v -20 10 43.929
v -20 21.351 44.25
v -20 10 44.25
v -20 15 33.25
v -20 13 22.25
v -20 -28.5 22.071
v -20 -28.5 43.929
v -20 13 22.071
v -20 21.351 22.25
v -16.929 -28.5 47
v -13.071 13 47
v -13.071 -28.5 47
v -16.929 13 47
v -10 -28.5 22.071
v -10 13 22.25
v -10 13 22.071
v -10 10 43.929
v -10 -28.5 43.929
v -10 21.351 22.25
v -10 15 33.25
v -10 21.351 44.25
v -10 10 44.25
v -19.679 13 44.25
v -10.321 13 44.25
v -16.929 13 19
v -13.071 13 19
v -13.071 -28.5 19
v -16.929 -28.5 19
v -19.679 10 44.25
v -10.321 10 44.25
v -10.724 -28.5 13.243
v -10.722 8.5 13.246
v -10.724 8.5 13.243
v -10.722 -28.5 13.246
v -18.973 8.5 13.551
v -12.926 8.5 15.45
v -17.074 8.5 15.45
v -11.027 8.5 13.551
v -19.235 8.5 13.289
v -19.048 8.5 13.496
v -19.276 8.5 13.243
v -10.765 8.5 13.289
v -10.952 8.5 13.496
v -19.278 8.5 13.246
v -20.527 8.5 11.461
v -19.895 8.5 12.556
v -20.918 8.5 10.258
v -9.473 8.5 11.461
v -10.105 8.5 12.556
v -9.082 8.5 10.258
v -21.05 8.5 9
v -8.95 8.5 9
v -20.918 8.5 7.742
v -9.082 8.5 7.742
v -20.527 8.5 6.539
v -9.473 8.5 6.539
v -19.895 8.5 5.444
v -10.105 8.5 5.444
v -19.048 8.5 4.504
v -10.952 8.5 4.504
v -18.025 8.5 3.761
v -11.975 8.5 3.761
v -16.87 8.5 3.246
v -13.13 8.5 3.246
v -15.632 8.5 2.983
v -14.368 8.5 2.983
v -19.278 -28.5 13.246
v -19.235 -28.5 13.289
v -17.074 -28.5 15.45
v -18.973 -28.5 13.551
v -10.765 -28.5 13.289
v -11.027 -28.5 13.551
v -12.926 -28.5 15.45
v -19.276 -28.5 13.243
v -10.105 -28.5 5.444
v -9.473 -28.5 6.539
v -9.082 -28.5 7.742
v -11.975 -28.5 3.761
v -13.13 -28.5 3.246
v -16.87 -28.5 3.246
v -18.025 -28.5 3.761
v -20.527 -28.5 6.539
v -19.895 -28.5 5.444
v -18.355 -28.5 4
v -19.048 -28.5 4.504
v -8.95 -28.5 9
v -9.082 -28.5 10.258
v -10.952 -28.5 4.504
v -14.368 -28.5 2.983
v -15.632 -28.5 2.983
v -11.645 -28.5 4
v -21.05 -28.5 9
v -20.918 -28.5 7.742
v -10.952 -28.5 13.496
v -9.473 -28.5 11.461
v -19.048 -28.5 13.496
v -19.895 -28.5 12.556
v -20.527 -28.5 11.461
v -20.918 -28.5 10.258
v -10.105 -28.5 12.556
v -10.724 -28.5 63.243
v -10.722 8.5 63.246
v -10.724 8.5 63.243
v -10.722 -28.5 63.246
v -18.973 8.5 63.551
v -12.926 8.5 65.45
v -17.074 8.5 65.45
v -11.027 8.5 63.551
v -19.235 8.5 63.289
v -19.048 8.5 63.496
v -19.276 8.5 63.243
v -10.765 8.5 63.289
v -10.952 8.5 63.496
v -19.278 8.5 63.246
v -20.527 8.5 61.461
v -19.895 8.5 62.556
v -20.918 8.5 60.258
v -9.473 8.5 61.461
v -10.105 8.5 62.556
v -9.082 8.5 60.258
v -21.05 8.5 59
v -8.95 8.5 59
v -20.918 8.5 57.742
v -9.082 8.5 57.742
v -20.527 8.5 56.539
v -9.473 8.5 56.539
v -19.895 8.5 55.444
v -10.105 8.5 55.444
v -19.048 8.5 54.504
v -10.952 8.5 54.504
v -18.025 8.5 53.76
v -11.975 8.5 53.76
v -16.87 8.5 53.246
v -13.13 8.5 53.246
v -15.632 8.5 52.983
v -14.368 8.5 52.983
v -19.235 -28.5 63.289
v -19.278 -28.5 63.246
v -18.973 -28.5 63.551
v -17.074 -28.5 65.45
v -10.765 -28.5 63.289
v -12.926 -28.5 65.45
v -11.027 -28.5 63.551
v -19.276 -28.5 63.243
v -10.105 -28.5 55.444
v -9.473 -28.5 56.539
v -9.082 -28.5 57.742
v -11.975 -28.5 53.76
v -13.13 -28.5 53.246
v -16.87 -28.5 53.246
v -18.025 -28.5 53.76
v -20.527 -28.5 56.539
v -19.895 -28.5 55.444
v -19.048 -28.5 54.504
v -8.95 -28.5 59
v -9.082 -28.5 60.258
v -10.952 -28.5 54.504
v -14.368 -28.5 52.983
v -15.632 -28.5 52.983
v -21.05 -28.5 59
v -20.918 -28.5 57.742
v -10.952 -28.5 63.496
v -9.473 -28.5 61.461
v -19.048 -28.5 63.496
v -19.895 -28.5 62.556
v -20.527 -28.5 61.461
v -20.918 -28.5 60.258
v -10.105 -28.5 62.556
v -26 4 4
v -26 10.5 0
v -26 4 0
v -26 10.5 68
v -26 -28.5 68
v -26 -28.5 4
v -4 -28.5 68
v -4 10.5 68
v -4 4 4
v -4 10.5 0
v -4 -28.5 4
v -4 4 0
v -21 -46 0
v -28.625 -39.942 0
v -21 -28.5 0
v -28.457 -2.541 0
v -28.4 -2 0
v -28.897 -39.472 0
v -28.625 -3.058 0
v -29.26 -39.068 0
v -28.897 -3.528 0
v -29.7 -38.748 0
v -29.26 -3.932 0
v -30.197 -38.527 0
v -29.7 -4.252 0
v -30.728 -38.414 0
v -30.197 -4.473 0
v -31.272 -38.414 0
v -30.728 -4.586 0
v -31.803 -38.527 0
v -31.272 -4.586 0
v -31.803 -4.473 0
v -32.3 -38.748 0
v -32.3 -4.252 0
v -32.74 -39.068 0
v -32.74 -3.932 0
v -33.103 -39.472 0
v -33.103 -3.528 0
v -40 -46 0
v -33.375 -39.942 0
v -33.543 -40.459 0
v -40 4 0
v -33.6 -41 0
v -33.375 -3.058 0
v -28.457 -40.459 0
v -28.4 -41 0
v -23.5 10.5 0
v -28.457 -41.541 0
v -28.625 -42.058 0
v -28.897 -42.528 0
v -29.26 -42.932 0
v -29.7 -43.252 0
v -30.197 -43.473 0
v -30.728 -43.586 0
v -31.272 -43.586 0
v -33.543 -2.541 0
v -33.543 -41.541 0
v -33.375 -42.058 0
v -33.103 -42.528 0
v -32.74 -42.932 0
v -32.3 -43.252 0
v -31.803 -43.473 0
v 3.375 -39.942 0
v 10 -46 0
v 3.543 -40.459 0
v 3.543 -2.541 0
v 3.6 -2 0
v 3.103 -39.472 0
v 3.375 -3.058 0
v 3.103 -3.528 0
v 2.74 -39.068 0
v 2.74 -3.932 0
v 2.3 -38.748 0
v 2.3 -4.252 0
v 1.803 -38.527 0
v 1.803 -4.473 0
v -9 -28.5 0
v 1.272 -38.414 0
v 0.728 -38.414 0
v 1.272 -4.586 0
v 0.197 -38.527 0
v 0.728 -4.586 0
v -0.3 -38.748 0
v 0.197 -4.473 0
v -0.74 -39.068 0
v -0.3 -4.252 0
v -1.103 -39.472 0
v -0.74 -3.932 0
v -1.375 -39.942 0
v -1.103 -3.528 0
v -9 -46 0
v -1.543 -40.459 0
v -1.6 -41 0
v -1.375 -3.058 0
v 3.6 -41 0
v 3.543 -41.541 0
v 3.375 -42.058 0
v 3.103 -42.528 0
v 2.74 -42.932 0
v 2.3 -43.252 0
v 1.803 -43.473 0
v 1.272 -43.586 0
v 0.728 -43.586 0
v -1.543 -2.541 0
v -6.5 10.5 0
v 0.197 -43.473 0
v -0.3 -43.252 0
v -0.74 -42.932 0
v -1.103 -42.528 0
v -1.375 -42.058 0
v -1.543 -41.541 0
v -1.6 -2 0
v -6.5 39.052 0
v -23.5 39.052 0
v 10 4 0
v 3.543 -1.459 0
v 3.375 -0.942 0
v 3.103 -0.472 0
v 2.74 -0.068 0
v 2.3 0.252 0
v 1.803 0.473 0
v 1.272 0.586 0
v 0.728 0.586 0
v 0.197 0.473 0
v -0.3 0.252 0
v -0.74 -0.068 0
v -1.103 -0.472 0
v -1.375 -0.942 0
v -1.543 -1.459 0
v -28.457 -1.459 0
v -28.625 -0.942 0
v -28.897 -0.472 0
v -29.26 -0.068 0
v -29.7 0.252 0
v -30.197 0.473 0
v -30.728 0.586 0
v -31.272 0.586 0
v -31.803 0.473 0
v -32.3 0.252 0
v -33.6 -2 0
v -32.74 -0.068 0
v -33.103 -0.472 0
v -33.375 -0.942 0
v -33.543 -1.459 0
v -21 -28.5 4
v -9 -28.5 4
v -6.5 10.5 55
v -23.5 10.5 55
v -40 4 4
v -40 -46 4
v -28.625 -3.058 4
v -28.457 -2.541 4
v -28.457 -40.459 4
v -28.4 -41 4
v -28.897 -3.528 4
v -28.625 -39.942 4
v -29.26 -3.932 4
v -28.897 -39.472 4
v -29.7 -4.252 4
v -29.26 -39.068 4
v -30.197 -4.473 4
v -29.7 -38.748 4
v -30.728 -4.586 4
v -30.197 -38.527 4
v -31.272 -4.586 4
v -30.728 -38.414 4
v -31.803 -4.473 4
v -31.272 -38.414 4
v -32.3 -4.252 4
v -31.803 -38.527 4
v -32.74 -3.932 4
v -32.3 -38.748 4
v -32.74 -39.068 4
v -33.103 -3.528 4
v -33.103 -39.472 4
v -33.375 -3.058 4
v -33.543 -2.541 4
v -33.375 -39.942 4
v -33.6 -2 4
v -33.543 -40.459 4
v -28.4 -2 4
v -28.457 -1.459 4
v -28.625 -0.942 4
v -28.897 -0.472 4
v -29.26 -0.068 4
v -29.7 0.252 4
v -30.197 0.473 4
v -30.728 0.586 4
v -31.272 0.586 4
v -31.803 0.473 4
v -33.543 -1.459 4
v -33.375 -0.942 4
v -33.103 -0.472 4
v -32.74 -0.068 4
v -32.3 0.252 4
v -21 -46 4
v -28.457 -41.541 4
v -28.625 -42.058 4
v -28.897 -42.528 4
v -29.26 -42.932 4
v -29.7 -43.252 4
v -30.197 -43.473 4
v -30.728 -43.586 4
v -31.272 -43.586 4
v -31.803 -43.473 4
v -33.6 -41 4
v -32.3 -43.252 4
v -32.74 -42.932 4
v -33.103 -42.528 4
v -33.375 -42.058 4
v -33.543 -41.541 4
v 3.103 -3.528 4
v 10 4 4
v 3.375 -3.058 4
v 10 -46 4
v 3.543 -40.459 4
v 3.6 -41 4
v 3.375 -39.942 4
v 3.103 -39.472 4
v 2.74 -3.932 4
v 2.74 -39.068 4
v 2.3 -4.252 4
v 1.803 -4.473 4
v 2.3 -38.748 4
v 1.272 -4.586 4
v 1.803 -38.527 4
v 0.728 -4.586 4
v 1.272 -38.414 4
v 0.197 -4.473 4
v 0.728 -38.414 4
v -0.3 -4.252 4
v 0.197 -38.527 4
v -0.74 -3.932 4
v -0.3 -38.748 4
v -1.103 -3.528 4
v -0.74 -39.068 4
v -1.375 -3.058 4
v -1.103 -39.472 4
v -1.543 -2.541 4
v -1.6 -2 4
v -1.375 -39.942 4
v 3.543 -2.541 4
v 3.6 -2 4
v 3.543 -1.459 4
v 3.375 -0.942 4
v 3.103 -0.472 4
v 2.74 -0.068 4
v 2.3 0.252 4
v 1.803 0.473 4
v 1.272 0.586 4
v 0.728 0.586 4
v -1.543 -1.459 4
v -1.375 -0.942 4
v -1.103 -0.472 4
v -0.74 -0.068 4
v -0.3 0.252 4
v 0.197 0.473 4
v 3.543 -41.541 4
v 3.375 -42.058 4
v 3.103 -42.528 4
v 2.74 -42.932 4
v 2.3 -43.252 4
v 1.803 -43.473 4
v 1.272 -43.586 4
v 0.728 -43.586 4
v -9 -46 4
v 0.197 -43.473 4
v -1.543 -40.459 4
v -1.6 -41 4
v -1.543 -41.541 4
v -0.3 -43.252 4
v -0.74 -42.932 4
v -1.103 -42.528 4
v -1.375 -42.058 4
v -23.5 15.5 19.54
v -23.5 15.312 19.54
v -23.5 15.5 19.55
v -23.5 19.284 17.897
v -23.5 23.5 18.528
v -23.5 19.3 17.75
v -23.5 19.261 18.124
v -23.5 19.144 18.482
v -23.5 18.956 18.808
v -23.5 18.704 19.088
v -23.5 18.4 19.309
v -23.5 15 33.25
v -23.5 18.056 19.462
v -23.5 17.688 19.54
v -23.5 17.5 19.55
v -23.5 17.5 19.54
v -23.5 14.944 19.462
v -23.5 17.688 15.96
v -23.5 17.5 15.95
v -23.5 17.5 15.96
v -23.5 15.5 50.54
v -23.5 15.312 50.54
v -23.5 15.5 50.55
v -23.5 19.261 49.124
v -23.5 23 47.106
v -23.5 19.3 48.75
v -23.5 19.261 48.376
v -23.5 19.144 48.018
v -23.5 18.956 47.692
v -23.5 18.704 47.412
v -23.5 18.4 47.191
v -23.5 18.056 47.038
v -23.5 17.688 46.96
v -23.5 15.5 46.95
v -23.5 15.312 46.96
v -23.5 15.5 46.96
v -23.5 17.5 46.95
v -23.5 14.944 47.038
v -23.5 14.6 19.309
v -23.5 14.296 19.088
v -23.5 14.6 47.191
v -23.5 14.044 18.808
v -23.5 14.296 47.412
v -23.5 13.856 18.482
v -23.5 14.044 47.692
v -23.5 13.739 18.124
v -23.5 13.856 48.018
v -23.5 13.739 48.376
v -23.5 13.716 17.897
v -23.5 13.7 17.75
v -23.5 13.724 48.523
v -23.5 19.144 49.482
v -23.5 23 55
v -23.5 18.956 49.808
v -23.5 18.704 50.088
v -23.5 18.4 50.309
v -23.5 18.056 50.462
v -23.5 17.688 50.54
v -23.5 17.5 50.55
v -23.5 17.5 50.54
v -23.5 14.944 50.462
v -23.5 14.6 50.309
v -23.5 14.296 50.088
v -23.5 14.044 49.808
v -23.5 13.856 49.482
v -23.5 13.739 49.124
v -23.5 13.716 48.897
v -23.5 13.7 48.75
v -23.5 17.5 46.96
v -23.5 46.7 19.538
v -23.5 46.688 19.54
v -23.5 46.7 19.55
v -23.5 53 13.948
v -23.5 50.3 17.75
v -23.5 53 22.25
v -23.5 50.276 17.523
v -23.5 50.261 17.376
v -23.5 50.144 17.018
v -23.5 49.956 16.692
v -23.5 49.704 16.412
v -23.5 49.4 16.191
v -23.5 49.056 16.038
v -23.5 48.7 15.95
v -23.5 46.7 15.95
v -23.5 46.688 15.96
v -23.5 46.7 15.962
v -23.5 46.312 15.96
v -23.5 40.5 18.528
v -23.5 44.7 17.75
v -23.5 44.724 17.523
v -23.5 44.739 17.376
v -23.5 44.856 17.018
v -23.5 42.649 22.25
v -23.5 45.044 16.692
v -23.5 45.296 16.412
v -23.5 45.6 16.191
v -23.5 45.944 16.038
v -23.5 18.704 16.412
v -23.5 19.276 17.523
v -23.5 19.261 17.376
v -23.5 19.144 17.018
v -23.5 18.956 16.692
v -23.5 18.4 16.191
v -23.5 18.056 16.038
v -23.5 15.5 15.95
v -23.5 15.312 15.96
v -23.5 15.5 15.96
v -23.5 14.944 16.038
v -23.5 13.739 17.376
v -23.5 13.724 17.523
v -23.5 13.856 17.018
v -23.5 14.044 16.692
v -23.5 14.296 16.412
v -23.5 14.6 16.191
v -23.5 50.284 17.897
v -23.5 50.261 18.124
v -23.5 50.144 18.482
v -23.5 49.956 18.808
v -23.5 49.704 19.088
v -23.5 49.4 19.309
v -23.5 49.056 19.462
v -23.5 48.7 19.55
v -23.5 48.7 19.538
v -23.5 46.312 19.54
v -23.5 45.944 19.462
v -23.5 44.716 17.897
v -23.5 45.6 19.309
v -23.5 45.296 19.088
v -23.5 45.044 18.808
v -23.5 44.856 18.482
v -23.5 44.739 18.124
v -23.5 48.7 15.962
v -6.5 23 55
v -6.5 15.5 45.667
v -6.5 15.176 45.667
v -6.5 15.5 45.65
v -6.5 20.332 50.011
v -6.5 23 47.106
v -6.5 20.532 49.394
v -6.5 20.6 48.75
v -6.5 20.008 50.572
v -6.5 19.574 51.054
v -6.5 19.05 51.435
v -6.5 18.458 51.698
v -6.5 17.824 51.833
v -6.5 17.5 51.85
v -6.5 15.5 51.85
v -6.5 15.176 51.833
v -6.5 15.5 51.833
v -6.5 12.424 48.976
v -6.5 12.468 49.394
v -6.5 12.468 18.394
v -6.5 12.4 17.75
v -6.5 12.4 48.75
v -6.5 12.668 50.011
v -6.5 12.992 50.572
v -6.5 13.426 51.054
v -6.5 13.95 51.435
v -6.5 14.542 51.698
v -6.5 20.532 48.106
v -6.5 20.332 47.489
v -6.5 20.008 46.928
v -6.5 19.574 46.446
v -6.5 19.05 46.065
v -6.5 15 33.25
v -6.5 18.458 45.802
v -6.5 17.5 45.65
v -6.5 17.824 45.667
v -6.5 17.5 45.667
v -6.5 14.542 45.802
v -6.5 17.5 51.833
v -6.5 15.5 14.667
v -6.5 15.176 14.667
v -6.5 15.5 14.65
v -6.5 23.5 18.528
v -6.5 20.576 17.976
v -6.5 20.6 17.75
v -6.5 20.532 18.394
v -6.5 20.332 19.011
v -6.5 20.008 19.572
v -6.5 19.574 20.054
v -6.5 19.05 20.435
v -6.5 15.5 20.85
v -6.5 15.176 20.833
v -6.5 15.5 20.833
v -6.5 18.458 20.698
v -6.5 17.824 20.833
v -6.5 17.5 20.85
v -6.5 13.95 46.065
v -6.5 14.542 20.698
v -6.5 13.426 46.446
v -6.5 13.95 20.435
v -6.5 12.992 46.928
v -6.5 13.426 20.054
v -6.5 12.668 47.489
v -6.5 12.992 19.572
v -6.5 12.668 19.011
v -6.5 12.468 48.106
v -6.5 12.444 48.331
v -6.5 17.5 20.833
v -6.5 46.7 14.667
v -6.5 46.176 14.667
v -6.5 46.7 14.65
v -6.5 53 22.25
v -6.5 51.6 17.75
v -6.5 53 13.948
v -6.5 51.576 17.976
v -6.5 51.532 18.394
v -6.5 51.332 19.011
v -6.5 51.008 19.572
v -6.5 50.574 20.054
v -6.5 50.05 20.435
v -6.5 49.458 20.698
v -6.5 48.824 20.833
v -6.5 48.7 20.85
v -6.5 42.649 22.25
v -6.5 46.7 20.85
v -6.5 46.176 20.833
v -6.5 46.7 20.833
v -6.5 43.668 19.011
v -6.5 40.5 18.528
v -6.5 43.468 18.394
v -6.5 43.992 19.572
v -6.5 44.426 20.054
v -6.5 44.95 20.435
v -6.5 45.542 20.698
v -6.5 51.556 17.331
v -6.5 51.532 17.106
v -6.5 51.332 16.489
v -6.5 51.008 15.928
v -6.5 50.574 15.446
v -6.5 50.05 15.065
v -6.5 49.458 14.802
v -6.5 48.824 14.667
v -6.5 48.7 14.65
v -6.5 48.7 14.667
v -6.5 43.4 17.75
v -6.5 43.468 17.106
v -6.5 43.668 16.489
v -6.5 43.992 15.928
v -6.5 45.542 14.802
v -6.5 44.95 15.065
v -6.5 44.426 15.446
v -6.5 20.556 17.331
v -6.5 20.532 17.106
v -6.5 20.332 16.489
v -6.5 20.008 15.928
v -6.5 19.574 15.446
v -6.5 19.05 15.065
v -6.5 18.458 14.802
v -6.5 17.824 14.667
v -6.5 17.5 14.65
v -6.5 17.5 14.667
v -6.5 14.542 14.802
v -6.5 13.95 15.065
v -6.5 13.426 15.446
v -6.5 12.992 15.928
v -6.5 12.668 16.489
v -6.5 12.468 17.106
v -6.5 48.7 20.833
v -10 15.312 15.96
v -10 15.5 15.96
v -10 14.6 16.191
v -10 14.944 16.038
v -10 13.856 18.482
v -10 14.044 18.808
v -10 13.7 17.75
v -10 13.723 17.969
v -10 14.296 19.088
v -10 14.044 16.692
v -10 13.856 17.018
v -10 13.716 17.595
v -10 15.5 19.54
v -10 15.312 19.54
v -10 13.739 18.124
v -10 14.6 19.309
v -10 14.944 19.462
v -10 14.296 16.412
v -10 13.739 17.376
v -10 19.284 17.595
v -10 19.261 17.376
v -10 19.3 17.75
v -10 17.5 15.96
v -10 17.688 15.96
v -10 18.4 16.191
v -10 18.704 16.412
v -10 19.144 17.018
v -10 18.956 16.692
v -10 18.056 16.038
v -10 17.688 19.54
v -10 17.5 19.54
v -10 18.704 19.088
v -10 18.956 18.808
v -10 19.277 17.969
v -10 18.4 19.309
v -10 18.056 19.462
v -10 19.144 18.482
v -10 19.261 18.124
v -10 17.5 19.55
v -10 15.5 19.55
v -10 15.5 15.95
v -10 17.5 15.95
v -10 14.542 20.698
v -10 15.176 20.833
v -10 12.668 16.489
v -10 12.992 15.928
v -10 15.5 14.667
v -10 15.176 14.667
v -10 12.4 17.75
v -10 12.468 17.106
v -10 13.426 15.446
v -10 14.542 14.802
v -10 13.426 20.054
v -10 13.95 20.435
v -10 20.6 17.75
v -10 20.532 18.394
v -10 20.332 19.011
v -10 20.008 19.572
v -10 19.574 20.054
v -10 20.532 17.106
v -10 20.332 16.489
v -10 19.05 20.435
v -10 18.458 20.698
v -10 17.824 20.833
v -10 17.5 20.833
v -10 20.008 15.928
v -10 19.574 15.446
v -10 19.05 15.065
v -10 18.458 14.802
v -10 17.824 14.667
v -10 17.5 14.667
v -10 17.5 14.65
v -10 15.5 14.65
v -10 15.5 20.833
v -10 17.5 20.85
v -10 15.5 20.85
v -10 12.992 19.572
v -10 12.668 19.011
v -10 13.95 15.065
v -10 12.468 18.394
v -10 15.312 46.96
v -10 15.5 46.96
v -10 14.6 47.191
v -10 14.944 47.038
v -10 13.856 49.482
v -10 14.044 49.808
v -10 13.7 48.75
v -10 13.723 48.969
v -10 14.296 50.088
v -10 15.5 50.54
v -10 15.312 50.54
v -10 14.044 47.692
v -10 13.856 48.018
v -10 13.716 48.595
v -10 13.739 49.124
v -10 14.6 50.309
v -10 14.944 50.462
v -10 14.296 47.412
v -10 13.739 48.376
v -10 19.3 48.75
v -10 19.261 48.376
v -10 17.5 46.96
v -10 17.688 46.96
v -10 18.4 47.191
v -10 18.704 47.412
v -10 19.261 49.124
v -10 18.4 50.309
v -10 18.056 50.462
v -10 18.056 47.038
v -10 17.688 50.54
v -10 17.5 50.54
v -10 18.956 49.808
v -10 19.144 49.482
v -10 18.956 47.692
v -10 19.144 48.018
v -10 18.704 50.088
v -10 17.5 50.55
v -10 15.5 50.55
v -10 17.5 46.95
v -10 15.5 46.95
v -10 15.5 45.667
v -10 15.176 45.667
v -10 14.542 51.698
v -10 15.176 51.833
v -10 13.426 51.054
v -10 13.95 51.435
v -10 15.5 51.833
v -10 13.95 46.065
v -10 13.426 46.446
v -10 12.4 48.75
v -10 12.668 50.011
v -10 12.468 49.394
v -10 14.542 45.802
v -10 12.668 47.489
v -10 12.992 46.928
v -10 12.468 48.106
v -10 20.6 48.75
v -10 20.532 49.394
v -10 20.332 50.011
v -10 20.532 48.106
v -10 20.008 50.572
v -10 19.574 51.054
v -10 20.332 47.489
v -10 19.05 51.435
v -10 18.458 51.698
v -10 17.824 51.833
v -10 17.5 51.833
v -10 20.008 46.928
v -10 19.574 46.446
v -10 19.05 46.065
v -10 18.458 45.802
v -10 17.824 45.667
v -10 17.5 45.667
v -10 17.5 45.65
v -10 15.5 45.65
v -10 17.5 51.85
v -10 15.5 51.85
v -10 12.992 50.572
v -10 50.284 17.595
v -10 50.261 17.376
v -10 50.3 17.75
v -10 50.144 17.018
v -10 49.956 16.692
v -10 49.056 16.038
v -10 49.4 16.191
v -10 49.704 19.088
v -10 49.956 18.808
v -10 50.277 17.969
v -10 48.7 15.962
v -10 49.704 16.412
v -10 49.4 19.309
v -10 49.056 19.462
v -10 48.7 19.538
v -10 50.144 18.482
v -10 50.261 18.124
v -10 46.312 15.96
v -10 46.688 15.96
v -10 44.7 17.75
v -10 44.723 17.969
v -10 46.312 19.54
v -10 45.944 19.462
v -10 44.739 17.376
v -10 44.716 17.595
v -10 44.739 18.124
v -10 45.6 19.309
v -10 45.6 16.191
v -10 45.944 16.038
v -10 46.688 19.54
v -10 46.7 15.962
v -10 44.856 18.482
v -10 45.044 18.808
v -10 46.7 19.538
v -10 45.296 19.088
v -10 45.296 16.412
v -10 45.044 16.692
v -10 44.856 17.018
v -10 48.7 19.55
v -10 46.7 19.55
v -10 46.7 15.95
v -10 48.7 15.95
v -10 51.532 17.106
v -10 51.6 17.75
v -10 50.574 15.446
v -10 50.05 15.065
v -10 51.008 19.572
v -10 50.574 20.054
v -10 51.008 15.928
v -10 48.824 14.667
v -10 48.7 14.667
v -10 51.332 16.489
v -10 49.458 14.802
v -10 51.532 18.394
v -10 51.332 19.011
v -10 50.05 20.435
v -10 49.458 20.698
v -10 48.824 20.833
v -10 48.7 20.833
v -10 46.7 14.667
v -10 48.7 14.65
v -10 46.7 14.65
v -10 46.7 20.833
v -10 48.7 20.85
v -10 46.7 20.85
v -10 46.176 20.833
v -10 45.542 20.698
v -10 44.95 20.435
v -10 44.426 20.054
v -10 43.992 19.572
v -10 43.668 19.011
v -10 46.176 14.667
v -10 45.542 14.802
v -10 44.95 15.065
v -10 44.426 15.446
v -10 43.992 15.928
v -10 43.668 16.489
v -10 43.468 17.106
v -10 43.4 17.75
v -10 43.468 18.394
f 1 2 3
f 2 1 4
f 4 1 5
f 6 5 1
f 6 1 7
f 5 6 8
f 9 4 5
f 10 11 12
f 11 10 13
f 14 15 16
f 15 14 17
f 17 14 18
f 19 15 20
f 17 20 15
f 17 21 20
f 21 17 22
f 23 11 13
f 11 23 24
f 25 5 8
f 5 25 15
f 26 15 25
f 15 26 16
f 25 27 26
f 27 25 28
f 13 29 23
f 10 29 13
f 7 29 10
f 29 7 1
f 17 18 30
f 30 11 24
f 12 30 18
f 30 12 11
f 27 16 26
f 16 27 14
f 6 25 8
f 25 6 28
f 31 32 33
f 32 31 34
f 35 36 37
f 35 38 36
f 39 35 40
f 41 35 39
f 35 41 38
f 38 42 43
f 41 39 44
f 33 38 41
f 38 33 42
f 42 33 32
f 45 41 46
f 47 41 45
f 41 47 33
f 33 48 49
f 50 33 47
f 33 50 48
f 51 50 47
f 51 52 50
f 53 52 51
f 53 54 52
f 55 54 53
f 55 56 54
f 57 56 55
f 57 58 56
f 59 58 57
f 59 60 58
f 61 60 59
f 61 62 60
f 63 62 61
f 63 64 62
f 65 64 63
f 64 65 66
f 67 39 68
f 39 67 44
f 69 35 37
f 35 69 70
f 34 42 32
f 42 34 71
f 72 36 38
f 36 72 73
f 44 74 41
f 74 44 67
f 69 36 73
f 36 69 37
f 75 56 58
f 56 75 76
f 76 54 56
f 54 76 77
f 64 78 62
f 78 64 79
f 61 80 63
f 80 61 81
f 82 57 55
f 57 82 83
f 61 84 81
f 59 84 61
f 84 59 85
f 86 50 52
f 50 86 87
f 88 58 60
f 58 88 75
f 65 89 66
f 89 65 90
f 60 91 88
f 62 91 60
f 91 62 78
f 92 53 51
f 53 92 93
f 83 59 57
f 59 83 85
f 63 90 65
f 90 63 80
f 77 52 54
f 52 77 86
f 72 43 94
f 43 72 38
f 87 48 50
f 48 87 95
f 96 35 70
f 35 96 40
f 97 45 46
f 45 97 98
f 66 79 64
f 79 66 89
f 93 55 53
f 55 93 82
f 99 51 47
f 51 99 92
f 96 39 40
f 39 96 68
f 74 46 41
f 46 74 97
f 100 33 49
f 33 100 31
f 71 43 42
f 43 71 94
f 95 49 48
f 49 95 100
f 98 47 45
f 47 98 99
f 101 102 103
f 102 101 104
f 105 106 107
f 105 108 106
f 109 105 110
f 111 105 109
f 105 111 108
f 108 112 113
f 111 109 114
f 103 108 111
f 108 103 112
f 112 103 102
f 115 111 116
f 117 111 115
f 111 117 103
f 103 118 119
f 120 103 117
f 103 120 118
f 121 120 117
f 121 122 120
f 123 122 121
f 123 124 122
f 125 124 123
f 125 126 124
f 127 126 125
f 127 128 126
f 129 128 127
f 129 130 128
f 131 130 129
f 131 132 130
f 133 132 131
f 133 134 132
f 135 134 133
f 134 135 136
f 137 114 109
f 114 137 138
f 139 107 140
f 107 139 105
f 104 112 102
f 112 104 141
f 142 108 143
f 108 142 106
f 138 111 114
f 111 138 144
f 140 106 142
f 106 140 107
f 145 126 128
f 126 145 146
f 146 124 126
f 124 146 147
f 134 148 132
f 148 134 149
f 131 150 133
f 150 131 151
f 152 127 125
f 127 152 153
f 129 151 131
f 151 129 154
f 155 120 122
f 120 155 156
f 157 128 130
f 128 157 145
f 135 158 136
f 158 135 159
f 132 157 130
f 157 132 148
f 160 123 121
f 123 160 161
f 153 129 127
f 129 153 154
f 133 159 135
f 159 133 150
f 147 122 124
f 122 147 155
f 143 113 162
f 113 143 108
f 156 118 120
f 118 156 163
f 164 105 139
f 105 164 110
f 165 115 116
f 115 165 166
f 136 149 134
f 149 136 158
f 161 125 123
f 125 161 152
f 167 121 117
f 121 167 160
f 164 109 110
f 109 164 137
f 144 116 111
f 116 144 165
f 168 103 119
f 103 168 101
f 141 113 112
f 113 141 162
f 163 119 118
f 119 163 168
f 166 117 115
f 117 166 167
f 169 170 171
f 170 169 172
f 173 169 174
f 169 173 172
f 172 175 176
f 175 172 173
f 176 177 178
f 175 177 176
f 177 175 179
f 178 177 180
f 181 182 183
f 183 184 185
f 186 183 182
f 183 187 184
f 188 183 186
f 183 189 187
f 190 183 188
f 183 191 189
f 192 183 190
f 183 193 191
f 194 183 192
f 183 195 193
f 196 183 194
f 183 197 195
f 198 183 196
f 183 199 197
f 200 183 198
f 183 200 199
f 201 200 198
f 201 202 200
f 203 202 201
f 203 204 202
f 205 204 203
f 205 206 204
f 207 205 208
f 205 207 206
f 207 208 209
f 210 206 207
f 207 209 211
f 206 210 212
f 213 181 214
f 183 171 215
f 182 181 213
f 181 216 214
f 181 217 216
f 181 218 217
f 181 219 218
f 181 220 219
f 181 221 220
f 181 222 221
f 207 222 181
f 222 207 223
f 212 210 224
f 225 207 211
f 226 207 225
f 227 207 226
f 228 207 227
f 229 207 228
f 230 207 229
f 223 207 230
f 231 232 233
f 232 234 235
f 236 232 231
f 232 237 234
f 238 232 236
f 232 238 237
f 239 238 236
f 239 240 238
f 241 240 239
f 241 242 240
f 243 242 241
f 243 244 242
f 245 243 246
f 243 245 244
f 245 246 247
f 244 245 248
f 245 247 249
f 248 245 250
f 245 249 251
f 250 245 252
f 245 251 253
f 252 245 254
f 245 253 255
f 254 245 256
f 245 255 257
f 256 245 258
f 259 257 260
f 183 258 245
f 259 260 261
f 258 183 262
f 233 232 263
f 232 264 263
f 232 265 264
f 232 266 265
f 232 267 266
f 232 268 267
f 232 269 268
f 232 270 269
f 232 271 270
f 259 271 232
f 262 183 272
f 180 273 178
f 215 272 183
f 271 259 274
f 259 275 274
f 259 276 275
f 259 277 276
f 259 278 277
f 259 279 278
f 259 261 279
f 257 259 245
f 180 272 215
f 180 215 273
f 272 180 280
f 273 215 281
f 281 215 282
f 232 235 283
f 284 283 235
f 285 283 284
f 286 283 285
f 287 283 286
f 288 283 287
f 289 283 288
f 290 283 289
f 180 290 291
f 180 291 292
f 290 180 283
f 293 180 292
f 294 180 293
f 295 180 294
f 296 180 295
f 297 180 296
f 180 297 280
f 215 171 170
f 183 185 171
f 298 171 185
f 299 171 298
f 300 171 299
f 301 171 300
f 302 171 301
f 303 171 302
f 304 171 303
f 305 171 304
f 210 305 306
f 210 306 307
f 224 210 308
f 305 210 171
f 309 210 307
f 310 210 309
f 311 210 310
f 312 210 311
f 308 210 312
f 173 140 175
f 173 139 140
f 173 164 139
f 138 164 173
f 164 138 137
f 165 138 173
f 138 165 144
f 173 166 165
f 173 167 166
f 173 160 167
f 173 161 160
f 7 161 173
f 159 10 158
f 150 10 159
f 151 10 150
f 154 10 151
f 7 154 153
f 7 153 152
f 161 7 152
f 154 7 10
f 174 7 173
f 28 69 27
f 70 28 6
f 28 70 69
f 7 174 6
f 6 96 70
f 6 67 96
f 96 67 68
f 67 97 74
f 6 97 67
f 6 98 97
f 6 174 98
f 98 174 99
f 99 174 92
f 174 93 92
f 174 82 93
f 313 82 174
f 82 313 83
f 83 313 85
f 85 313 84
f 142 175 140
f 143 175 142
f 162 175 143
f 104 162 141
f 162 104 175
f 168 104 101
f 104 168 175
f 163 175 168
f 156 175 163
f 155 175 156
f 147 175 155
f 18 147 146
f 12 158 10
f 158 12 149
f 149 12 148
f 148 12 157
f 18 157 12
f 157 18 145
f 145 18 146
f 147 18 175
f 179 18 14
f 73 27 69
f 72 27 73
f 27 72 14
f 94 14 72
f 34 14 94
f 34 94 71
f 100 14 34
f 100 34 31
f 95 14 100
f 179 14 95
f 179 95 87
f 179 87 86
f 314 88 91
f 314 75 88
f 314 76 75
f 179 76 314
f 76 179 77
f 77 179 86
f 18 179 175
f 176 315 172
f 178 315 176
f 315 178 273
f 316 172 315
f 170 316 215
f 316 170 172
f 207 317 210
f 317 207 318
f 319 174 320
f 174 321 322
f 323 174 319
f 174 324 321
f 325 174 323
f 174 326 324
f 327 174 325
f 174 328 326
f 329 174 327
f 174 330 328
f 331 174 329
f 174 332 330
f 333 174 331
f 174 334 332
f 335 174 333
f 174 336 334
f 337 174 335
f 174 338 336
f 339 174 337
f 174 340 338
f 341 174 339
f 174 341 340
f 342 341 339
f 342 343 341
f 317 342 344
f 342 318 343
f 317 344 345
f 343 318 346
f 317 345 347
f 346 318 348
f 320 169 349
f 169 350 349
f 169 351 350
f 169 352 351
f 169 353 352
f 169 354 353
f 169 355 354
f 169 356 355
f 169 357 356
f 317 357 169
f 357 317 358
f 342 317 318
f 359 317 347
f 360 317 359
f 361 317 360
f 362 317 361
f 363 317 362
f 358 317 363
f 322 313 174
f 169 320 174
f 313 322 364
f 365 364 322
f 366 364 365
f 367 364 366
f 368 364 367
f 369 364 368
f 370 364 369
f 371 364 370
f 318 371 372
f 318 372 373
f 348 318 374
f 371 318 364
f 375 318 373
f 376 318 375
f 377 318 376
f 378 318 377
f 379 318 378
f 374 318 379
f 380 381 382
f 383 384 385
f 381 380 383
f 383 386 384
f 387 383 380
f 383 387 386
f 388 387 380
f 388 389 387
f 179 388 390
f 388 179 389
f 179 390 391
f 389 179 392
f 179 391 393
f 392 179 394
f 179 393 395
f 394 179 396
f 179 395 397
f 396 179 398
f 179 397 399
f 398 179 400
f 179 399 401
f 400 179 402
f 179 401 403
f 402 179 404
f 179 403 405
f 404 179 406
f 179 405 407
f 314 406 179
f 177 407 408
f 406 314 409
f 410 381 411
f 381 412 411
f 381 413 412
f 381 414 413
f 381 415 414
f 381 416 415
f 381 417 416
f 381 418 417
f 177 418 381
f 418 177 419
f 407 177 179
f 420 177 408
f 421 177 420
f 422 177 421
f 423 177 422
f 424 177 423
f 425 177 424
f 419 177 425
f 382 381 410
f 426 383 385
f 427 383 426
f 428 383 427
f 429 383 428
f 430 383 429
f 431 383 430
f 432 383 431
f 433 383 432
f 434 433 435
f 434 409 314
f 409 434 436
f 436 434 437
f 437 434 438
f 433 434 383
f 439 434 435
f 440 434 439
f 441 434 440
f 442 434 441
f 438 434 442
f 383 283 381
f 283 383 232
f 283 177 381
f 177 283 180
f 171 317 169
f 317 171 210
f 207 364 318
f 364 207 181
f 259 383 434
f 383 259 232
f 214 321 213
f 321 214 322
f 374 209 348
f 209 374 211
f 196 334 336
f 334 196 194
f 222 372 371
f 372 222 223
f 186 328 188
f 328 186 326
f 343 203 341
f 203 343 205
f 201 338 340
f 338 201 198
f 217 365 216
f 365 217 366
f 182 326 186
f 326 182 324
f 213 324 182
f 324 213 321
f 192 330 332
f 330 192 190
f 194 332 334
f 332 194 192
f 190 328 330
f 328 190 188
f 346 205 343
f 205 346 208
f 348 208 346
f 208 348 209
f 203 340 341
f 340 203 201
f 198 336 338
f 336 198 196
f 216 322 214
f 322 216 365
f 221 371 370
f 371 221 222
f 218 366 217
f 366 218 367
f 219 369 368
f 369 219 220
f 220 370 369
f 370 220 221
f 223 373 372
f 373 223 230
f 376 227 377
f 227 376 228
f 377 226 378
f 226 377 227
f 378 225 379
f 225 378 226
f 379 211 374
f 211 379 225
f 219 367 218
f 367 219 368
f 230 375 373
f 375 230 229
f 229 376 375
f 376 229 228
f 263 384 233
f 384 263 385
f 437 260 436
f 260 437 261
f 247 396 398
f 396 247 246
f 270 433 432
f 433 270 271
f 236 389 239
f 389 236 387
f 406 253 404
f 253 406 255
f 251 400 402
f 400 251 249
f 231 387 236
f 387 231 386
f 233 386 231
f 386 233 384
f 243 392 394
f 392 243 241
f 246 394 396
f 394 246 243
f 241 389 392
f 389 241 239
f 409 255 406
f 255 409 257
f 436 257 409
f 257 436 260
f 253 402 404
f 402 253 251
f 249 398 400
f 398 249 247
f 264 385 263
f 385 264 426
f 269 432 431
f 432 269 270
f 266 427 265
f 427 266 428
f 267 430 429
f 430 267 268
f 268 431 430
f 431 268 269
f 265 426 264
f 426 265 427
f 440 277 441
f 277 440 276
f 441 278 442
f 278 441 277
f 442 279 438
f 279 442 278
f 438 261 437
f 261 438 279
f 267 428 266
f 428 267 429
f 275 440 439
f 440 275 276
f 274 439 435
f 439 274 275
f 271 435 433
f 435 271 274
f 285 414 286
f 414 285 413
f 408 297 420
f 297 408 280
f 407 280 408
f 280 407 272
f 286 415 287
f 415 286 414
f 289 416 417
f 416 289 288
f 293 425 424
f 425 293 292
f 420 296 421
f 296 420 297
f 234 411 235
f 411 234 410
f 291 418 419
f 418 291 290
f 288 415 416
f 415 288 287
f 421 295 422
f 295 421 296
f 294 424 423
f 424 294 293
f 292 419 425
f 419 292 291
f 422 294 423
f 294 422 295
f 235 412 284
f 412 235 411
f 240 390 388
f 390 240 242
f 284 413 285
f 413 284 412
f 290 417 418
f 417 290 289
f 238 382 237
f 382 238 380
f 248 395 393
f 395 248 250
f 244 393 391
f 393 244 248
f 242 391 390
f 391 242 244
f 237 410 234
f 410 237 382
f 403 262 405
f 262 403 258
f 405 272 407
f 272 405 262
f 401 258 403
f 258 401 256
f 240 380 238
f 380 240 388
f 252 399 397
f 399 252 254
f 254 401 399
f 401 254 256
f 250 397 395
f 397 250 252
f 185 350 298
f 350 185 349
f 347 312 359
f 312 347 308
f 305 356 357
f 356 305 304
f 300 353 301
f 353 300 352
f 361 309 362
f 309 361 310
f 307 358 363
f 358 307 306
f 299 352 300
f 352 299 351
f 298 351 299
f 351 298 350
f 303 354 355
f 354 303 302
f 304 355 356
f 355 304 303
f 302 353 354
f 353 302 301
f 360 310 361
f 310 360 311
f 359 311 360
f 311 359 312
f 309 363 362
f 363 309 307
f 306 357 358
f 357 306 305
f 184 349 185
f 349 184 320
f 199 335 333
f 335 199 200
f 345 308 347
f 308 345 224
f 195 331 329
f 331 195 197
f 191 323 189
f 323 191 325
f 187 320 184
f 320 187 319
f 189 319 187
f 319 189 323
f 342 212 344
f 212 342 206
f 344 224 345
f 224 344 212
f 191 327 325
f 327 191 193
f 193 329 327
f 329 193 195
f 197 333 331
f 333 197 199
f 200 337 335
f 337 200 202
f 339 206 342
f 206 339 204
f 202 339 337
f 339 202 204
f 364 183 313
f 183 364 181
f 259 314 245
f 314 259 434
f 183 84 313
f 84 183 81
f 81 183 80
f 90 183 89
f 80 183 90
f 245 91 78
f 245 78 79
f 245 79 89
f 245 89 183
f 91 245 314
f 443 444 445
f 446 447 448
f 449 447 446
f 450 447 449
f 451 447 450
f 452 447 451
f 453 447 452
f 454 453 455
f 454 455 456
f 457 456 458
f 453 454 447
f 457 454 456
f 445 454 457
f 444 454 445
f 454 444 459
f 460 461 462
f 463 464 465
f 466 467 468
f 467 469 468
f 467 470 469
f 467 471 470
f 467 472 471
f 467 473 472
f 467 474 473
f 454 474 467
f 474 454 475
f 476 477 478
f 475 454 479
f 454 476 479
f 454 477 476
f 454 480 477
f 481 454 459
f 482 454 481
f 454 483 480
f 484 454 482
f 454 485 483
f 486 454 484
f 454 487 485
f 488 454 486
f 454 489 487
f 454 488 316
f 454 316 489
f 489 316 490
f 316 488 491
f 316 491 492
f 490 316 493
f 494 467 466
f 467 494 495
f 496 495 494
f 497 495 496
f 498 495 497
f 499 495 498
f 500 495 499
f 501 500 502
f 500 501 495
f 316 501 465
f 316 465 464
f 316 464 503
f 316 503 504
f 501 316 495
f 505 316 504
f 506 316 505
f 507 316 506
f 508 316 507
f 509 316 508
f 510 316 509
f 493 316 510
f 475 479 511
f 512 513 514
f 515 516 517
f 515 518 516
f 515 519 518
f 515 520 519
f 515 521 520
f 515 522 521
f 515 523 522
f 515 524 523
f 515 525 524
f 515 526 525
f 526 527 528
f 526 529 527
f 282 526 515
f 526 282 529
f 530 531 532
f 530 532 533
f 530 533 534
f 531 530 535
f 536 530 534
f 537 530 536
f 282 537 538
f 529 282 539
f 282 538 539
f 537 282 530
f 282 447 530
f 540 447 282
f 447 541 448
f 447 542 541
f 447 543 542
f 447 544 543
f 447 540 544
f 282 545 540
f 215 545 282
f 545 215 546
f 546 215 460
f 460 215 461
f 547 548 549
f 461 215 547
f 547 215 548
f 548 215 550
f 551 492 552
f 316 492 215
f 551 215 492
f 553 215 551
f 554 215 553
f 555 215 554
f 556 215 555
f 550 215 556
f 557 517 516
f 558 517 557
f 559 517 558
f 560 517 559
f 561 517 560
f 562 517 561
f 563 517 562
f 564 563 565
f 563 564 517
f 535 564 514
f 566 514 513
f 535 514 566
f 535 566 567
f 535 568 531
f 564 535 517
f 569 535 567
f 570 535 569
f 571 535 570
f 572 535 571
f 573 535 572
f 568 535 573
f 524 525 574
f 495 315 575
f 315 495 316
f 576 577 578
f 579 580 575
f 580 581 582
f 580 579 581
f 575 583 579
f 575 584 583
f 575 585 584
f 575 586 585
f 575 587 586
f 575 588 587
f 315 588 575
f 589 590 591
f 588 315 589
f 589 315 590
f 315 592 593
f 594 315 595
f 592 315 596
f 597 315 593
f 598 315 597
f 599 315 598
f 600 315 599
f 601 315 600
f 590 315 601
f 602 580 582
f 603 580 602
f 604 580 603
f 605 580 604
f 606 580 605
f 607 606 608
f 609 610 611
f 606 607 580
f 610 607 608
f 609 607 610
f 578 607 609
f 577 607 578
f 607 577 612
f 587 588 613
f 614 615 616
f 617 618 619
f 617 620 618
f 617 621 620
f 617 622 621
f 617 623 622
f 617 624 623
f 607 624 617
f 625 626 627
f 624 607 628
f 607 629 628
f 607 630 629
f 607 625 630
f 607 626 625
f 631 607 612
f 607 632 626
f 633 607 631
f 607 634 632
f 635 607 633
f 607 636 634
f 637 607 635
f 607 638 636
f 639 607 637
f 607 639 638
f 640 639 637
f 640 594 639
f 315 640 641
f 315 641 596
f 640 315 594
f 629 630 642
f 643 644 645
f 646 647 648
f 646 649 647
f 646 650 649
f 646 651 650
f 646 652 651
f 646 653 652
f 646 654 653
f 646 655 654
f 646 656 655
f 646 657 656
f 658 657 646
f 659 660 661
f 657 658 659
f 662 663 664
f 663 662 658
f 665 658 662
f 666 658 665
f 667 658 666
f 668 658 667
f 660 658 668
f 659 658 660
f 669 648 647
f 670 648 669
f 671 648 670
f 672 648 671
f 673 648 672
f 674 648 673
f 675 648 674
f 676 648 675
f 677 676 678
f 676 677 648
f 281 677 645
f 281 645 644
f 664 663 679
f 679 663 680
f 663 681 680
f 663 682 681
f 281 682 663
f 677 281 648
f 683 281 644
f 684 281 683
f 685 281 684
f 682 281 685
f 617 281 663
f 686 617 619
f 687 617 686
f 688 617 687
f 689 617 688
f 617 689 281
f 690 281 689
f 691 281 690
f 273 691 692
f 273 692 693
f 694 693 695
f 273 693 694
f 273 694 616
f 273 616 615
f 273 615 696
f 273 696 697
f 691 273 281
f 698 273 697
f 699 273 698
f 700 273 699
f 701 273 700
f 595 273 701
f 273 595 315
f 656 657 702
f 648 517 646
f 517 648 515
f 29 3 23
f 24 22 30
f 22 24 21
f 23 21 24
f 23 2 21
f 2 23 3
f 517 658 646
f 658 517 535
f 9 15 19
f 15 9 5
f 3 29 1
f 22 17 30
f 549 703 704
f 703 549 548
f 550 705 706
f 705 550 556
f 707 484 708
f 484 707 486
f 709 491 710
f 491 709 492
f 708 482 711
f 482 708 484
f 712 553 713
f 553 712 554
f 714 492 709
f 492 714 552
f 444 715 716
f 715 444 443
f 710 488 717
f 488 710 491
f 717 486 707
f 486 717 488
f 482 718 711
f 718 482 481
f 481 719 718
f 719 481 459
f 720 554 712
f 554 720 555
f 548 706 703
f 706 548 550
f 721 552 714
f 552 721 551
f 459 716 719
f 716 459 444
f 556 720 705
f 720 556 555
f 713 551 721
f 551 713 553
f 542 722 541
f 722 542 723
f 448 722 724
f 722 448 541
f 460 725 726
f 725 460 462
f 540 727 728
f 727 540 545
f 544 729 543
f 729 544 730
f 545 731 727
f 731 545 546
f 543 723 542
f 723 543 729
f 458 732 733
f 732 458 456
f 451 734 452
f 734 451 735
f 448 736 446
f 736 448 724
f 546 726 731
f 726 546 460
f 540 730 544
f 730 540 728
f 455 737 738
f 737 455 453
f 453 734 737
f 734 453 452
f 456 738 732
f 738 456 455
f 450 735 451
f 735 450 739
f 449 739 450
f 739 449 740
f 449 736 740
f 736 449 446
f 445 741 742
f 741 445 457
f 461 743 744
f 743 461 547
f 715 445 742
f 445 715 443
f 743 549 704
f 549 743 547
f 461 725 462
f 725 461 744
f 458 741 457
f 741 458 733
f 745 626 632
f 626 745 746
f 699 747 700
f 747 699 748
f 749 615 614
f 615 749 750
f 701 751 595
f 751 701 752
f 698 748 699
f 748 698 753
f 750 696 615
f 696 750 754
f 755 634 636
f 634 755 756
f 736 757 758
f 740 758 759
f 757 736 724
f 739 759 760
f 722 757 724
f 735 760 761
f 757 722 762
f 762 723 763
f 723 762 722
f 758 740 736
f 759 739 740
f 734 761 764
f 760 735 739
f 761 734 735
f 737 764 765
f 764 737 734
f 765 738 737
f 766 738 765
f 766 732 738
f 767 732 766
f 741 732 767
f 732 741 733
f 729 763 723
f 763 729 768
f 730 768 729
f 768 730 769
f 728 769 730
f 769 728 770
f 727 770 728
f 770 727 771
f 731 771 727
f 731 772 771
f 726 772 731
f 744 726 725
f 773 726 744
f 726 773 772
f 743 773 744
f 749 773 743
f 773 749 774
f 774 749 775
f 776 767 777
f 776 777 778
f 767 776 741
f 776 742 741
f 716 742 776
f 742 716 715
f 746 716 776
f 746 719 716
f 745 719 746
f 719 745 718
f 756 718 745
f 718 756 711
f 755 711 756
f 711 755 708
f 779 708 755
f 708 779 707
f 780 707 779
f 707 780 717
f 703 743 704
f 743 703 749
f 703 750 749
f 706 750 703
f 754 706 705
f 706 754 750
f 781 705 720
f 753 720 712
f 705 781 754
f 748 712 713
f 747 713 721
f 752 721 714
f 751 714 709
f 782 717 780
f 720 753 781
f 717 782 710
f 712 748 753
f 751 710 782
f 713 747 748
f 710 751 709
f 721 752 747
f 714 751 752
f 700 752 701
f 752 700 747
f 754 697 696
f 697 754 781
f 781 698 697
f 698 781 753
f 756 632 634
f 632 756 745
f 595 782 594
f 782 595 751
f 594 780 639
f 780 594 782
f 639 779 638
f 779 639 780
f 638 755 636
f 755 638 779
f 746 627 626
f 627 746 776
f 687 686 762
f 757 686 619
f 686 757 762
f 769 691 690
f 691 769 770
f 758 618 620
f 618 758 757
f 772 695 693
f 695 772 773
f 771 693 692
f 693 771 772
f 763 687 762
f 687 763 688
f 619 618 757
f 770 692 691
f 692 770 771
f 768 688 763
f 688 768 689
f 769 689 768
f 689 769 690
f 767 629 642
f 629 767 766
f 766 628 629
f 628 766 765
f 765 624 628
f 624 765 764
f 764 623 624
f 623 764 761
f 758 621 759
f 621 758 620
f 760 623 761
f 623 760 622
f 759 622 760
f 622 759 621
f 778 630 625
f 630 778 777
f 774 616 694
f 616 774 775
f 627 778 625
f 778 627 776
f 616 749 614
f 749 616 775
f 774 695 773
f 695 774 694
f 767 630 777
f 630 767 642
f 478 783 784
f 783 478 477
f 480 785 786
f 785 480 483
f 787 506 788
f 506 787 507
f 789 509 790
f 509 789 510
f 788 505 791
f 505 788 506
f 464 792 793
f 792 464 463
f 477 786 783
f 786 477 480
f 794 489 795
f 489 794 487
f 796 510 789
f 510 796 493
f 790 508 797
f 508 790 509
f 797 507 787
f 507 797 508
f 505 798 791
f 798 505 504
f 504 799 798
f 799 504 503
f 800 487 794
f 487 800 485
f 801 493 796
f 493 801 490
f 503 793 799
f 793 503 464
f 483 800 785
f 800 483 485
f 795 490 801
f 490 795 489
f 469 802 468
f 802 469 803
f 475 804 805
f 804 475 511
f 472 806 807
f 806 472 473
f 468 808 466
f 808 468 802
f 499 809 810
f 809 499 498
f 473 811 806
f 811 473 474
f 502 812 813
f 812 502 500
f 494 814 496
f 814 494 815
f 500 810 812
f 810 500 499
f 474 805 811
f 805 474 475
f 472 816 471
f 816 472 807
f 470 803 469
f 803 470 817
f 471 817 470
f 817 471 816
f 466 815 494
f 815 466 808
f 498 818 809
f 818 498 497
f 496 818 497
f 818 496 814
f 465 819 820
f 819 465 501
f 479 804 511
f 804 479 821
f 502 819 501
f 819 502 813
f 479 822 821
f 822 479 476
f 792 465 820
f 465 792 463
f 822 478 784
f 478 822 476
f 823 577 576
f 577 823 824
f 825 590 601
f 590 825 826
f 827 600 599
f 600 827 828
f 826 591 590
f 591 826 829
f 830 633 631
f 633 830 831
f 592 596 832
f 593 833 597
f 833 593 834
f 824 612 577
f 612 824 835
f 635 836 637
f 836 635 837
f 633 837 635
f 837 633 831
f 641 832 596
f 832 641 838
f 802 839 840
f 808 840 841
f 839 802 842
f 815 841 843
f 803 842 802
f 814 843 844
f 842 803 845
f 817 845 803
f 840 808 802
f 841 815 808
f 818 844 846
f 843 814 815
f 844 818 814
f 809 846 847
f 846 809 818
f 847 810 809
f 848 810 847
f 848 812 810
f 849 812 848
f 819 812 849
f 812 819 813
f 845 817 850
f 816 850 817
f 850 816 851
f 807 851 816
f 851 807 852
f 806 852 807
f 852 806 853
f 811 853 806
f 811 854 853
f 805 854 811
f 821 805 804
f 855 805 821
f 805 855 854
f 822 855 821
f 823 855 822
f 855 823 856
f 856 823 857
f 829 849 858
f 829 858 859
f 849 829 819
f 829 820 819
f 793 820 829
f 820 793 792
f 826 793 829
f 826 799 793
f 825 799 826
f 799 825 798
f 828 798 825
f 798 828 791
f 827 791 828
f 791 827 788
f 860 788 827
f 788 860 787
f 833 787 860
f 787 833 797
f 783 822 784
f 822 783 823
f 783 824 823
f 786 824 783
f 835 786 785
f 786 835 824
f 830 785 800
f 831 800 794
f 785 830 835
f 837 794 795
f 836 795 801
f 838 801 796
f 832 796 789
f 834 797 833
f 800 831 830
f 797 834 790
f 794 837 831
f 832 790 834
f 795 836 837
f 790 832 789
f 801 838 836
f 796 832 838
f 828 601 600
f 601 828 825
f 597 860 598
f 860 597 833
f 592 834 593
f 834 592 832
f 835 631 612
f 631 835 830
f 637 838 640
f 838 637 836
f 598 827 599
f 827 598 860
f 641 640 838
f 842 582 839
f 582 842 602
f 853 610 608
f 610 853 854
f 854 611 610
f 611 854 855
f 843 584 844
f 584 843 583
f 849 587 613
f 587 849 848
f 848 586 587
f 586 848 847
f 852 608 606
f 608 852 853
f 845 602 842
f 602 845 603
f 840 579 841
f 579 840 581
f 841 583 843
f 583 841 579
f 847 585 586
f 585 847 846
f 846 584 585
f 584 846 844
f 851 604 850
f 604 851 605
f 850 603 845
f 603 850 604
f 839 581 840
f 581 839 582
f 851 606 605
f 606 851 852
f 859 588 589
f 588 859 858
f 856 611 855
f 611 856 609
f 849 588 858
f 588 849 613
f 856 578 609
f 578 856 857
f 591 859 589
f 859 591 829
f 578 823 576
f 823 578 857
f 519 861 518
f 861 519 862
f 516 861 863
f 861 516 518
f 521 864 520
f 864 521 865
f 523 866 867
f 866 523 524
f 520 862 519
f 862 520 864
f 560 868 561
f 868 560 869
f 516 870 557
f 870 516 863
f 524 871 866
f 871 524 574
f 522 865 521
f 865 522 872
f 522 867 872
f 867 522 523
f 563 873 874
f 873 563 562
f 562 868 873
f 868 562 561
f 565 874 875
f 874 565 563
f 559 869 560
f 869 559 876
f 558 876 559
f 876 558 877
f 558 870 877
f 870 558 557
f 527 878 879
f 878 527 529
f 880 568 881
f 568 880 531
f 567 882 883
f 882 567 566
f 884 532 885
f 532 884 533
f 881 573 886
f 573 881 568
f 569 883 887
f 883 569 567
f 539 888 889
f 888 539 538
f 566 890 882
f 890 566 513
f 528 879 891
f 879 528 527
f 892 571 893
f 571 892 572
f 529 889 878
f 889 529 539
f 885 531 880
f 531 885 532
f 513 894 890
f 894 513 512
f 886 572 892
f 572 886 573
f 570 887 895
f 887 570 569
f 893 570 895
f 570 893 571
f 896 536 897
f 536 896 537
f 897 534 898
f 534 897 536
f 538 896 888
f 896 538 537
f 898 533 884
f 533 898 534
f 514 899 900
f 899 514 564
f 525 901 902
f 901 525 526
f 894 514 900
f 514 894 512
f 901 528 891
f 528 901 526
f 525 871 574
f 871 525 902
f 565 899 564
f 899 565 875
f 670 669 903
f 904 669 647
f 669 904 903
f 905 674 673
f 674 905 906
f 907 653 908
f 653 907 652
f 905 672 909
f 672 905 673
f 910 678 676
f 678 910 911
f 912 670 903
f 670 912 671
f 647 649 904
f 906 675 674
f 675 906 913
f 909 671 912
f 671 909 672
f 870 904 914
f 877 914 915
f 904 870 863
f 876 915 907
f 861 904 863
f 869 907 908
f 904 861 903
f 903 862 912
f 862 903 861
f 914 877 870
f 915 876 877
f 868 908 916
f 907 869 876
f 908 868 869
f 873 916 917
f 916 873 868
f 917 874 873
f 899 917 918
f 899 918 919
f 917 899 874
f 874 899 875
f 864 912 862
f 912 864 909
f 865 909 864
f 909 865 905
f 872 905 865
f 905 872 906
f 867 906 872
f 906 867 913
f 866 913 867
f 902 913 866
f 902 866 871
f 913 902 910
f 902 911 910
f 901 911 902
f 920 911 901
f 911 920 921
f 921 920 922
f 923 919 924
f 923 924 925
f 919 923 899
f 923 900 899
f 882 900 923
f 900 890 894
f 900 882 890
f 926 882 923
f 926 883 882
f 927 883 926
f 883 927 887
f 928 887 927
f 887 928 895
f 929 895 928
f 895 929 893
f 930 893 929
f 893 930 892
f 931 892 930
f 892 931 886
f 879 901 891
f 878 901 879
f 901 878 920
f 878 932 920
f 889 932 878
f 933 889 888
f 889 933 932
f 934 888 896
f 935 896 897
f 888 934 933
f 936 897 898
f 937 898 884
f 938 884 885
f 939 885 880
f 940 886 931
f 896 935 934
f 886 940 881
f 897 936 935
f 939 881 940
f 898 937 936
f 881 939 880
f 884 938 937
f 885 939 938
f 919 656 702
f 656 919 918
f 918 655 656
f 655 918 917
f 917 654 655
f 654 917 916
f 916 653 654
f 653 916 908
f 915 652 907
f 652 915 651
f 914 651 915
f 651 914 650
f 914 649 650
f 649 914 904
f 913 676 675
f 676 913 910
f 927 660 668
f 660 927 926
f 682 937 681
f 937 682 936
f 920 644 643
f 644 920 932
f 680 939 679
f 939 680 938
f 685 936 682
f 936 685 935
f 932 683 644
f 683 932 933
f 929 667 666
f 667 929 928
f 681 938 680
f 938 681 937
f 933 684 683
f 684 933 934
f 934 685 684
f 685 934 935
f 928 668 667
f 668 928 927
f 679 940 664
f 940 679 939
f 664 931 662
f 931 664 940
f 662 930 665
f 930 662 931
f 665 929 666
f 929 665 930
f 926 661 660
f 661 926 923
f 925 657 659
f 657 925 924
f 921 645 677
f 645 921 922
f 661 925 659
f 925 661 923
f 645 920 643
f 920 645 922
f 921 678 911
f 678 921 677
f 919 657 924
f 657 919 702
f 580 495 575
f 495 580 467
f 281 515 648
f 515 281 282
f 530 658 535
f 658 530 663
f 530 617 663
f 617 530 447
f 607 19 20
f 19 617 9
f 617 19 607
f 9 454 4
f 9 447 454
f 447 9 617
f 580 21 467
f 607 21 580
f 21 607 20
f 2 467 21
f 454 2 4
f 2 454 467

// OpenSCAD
// file: inc/bearing.scad
// PRUSA iteration3
// Bearing holders
// GNU GPL v3
// Josef Průša <iam@josefprusa.cz> and contributors
// http://www.reprap.org/wiki/Prusa_Mendel
// http://prusamendel.org

bearing_diameter = 15;

module horizontal_bearing_base(bearings=1){
 translate(v=[0,0,6]) cube(size = [24,8+bearings*25,12], center = true);	
}
module horizontal_bearing_holes(bearings=1){
 cutter_lenght = 10+bearings*25;
 one_holder_lenght = 8+25;
 holder_lenght = 8+bearings*25;
 
 // Main bearing cut
 difference(){
  translate(v=[0,0,12+1.5]) rotate(a=[90,0,0]) translate(v=[0,0,-cutter_lenght/2]) cylinder(h = cutter_lenght, r=bearing_diameter/2, $fn=50);
  // Bearing retainers
  translate(v=[0,1-holder_lenght/2,3+1.5]) cube(size = [24,6,8], center = true);
  translate(v=[0,-1+holder_lenght/2,3+1.5]) cube(size = [24,6,8], center = true);
 }
 
 // Ziptie cutouts
 ziptie_cut_ofset = 0;
 for ( i = [0 : bearings-1] ){
  // For easier positioning I move them by half of one 
  // bearing holder then add each bearign lenght and then center again
  translate(v=[0,-holder_lenght/2,0]) translate(v=[0,one_holder_lenght/2+i*25,0]) difference(){
   union(){
    translate(v=[0,2-6,12]) rotate(a=[90,0,0]) translate(v=[0,0,0]) cylinder(h = 4, r=12.5, $fn=50);
    translate(v=[0,2+6,12]) rotate(a=[90,0,0]) translate(v=[0,0,0]) cylinder(h = 4, r=12.5, $fn=50);
   }
   translate(v=[0,10,12]) rotate(a=[90,0,0]) translate(v=[0,0,0]) cylinder(h = 24, r=10, $fn=50);
  }
 }
 
}

module horizontal_bearing_test(){
 difference(){
  horizontal_bearing_base(1);
  horizontal_bearing_holes(1);
 }
 translate(v=[30,0,0]) difference(){
  horizontal_bearing_base(2);
  horizontal_bearing_holes(2);
 }
 translate(v=[60,0,0]) difference(){
  horizontal_bearing_base(3);
  horizontal_bearing_holes(3);
 }
}



thinwall = 3;
bearing_size = bearing_diameter + 2 * thinwall;

module vertical_bearing_base(){
 translate(v=[-bearing_size/2,0,30]) cube(size = [bearing_size,bearing_size,60], center = true);
 cylinder(h = 60, r=bearing_size/2, $fn = 60);
}

module vertical_bearing_holes(){
  translate(v=[0,0,-1]) cylinder(h = 62, r=bearing_diameter/2, $fn = 60);
  rotate(a=[0,0,-60]) translate(v=[10,0,31.5]) cube(size = [10,1,62], center = true);
}

difference(){
vertical_bearing_base();
vertical_bearing_holes();
}
// file: inc/x-end.scad
// PRUSA iteration3
// X end prototype
// GNU GPL v3
// Josef Průša <iam@josefprusa.cz> and contributors
// http://www.reprap.org/wiki/Prusa_Mendel
// http://prusamendel.org

use <bearing.scad>
rod_distance = 50;
zoffset=3;
module x_end_base(){
// Main block
height = 68;
translate(v=[-15,-9,height/2]) cube(size = [22,39,height], center = true);
translate([-11-4,-41+25-5,2]) cube([50,50,4], center = true);
}

module x_end_holes(){
// vertical_bearing_holes();
//mount holes
translate([-(11+4+32/2),-41])cylinder(r=5.2/2,h=20,$fn=30);   
translate([-(11+4)+32/2,-41])cylinder(r=5.2/2,h=20,$fn=30);    
translate([-(11+4)+32/2,-41+39])cylinder(r=5.2/2,h=20,$fn=30);
translate([-(11+4+32/2),-41+39])cylinder(r=5.2/2,h=20,$fn=30);
translate([-4-11-12/2,-41-5])cube([12,17.5,4]);   
 
// Belt hole
 
translate(v=[-1,0,zoffset]){
difference(){
	translate(v=[-5.5-10+1.5,-10,30]) cube(size = [10,46,28], center = true);
	// Nice edges
	translate(v=[-5.5-10+1.5,-10,30+23]) rotate([0,45,0]) cube(size = [10,46,28], center = true);
	translate(v=[-5.5-10+1.5,-10,30+23]) rotate([0,-45,0]) cube(size = [10,46,28], center = true);
	translate(v=[-5.5-10+1.5,-10,30-23]) rotate([0,45,0]) cube(size = [10,46,28], center = true);
	translate(v=[-5.5-10+1.5,-10,30-23]) rotate([0,-45,0]) cube(size = [10,46,28], center = true);

}
}

// Bottom pushfit rod
translate(v=[-15,-41.5,6+zoffset]) rotate(a=[-90,0,0]) pushfit_rod(12.1,50);
// Top pushfit rod
translate(v=[-15,-41.5,rod_distance+6+ zoffset]) rotate(a=[-90,0,0]) pushfit_rod(12.1,50);

}


// Final prototype
module x_end_plain(){
 difference(){
  x_end_base();
  x_end_holes();
 }
}

x_end_plain();


module pushfit_rod(diameter,length){
 cylinder(h = length, r=diameter/2, $fn=30);
 difference(){
 	translate(v=[0,-diameter/2.85,length/2]) rotate([0,0,45]) cube(size = [diameter/2,diameter/2,length], center = true);
 	translate(v=[0,-diameter/4-diameter/2-0.4,length/2]) rotate([0,0,0]) cube(size = [diameter,diameter/2,length], center = true);
 }

}
// main file
// PRUSA iteration3
// x end motor
// GNU GPL v3
// Josef Průša <iam@josefprusa.cz> and contributors
// http://www.reprap.org/wiki/Prusa_Mendel
// http://prusamendel.org

use <inc/x-end.scad>

module x_end_motor_base(){
 x_end_base();
 translate(v=[-15,31,27.5]) cube(size = [17,44,55], center = true);
}

module x_end_motor_holes(){
 x_end_holes();
 // Position to place
 translate(v=[-1,32,30.25+3]){
  // Belt hole
  translate(v=[-14,1,0]) cube(size = [10,46,22], center = true);
  // Motor mounting holes
  //translate(v=[20,-15.5,-15.5]) rotate(a=[0,-90,0]) rotate(a=[0,0,90]) cylinder(h = 70, r=1.8, $fn=30);
  //translate(v=[1,-15.5,-15.5]) rotate(a=[0,-90,0]) rotate(a=[0,0,90]) cylinder(h = 10, r=3.1, $fn=30);
  translate(v=[20,-16.5,-15.5]) rotate(a=[0,-90,0]) rotate(a=[0,0,90]) cylinder(h = 70, r=1.8, $fn=30);
  translate(v=[20,-14.5,-15.5]) rotate(a=[0,-90,0]) rotate(a=[0,0,90]) cylinder(h = 70, r=1.8, $fn=30);
  translate(v=[-30,-16.5,-15.5-1.8]) cube([30,2,2*1.8]); 
  translate(v=[1,-16.5,-15.5]) rotate(a=[0,-90,0]) rotate(a=[0,0,90]) cylinder(h = 10, r=3.1, $fn=30);
  translate(v=[1,-14.5,-15.5]) rotate(a=[0,-90,0]) rotate(a=[0,0,90]) cylinder(h = 10, r=3.1, $fn=30);
  translate(v=[-9,-16.5,-15.5-3.1]) cube([30,2,2*3.1]);	

  translate(v=[20,-16.5,15.5]) rotate(a=[0,-90,0]) rotate(a=[0,0,90]) cylinder(h = 70, r=1.8, $fn=30);
  translate(v=[20,-14.5,15.5]) rotate(a=[0,-90,0]) rotate(a=[0,0,90]) cylinder(h = 70, r=1.8, $fn=30);
  translate(v=[-30,-16.5,15.5-1.8]) cube([30,2,2*1.8]);  
  translate(v=[1,-16.5,15.5]) rotate(a=[0,-90,0]) rotate(a=[0,0,90]) cylinder(h = 10, r=3.1, $fn=30);
  translate(v=[1,-14.5,15.5]) rotate(a=[0,-90,0]) rotate(a=[0,0,90]) cylinder(h = 10, r=3.1, $fn=30);
  translate(v=[-9,-16.5,15.5-3.1]) cube([30,2,2*3.1]);	

  translate(v=[20,16.5,-15.5]) rotate(a=[0,-90,0]) rotate(a=[0,0,90]) cylinder(h = 70, r=1.8, $fn=30);
  translate(v=[20,14.5,-15.5]) rotate(a=[0,-90,0]) rotate(a=[0,0,90]) cylinder(h = 70, r=1.8, $fn=30);
  translate(v=[-30,16.5-1.8,-15.5-1.8]) cube([30,2,2*1.8]);  
  translate(v=[1,16.5,-15.5]) rotate(a=[0,-90,0]) rotate(a=[0,0,90]) cylinder(h = 10, r=3.1, $fn=30);
  translate(v=[1,14.5,-15.5]) rotate(a=[0,-90,0]) rotate(a=[0,0,90]) cylinder(h = 10, r=3.1, $fn=30);
  translate(v=[-9,16.5-1.8,-15.5-3.1]) cube([30,2,2*3.1]);	 
 
  // Material saving cutout 
  translate(v=[-10,12,10]) cube(size = [60,42,42], center = true);

  // Material saving cutout
  translate(v=[-10,40,-30]) rotate(a=[45,0,0])  cube(size = [60,60,42], center = true);
  // Motor shaft cutout
  translate(v=[0,0,0]) rotate(a=[0,-90,0]) rotate(a=[0,0,90]) cylinder(h = 70, r=17, $fn=6);
 }
}

// Final part
module x_end_motor(){
 difference(){
  x_end_motor_base();
  x_end_motor_holes();
 }
}

x_end_motor();
